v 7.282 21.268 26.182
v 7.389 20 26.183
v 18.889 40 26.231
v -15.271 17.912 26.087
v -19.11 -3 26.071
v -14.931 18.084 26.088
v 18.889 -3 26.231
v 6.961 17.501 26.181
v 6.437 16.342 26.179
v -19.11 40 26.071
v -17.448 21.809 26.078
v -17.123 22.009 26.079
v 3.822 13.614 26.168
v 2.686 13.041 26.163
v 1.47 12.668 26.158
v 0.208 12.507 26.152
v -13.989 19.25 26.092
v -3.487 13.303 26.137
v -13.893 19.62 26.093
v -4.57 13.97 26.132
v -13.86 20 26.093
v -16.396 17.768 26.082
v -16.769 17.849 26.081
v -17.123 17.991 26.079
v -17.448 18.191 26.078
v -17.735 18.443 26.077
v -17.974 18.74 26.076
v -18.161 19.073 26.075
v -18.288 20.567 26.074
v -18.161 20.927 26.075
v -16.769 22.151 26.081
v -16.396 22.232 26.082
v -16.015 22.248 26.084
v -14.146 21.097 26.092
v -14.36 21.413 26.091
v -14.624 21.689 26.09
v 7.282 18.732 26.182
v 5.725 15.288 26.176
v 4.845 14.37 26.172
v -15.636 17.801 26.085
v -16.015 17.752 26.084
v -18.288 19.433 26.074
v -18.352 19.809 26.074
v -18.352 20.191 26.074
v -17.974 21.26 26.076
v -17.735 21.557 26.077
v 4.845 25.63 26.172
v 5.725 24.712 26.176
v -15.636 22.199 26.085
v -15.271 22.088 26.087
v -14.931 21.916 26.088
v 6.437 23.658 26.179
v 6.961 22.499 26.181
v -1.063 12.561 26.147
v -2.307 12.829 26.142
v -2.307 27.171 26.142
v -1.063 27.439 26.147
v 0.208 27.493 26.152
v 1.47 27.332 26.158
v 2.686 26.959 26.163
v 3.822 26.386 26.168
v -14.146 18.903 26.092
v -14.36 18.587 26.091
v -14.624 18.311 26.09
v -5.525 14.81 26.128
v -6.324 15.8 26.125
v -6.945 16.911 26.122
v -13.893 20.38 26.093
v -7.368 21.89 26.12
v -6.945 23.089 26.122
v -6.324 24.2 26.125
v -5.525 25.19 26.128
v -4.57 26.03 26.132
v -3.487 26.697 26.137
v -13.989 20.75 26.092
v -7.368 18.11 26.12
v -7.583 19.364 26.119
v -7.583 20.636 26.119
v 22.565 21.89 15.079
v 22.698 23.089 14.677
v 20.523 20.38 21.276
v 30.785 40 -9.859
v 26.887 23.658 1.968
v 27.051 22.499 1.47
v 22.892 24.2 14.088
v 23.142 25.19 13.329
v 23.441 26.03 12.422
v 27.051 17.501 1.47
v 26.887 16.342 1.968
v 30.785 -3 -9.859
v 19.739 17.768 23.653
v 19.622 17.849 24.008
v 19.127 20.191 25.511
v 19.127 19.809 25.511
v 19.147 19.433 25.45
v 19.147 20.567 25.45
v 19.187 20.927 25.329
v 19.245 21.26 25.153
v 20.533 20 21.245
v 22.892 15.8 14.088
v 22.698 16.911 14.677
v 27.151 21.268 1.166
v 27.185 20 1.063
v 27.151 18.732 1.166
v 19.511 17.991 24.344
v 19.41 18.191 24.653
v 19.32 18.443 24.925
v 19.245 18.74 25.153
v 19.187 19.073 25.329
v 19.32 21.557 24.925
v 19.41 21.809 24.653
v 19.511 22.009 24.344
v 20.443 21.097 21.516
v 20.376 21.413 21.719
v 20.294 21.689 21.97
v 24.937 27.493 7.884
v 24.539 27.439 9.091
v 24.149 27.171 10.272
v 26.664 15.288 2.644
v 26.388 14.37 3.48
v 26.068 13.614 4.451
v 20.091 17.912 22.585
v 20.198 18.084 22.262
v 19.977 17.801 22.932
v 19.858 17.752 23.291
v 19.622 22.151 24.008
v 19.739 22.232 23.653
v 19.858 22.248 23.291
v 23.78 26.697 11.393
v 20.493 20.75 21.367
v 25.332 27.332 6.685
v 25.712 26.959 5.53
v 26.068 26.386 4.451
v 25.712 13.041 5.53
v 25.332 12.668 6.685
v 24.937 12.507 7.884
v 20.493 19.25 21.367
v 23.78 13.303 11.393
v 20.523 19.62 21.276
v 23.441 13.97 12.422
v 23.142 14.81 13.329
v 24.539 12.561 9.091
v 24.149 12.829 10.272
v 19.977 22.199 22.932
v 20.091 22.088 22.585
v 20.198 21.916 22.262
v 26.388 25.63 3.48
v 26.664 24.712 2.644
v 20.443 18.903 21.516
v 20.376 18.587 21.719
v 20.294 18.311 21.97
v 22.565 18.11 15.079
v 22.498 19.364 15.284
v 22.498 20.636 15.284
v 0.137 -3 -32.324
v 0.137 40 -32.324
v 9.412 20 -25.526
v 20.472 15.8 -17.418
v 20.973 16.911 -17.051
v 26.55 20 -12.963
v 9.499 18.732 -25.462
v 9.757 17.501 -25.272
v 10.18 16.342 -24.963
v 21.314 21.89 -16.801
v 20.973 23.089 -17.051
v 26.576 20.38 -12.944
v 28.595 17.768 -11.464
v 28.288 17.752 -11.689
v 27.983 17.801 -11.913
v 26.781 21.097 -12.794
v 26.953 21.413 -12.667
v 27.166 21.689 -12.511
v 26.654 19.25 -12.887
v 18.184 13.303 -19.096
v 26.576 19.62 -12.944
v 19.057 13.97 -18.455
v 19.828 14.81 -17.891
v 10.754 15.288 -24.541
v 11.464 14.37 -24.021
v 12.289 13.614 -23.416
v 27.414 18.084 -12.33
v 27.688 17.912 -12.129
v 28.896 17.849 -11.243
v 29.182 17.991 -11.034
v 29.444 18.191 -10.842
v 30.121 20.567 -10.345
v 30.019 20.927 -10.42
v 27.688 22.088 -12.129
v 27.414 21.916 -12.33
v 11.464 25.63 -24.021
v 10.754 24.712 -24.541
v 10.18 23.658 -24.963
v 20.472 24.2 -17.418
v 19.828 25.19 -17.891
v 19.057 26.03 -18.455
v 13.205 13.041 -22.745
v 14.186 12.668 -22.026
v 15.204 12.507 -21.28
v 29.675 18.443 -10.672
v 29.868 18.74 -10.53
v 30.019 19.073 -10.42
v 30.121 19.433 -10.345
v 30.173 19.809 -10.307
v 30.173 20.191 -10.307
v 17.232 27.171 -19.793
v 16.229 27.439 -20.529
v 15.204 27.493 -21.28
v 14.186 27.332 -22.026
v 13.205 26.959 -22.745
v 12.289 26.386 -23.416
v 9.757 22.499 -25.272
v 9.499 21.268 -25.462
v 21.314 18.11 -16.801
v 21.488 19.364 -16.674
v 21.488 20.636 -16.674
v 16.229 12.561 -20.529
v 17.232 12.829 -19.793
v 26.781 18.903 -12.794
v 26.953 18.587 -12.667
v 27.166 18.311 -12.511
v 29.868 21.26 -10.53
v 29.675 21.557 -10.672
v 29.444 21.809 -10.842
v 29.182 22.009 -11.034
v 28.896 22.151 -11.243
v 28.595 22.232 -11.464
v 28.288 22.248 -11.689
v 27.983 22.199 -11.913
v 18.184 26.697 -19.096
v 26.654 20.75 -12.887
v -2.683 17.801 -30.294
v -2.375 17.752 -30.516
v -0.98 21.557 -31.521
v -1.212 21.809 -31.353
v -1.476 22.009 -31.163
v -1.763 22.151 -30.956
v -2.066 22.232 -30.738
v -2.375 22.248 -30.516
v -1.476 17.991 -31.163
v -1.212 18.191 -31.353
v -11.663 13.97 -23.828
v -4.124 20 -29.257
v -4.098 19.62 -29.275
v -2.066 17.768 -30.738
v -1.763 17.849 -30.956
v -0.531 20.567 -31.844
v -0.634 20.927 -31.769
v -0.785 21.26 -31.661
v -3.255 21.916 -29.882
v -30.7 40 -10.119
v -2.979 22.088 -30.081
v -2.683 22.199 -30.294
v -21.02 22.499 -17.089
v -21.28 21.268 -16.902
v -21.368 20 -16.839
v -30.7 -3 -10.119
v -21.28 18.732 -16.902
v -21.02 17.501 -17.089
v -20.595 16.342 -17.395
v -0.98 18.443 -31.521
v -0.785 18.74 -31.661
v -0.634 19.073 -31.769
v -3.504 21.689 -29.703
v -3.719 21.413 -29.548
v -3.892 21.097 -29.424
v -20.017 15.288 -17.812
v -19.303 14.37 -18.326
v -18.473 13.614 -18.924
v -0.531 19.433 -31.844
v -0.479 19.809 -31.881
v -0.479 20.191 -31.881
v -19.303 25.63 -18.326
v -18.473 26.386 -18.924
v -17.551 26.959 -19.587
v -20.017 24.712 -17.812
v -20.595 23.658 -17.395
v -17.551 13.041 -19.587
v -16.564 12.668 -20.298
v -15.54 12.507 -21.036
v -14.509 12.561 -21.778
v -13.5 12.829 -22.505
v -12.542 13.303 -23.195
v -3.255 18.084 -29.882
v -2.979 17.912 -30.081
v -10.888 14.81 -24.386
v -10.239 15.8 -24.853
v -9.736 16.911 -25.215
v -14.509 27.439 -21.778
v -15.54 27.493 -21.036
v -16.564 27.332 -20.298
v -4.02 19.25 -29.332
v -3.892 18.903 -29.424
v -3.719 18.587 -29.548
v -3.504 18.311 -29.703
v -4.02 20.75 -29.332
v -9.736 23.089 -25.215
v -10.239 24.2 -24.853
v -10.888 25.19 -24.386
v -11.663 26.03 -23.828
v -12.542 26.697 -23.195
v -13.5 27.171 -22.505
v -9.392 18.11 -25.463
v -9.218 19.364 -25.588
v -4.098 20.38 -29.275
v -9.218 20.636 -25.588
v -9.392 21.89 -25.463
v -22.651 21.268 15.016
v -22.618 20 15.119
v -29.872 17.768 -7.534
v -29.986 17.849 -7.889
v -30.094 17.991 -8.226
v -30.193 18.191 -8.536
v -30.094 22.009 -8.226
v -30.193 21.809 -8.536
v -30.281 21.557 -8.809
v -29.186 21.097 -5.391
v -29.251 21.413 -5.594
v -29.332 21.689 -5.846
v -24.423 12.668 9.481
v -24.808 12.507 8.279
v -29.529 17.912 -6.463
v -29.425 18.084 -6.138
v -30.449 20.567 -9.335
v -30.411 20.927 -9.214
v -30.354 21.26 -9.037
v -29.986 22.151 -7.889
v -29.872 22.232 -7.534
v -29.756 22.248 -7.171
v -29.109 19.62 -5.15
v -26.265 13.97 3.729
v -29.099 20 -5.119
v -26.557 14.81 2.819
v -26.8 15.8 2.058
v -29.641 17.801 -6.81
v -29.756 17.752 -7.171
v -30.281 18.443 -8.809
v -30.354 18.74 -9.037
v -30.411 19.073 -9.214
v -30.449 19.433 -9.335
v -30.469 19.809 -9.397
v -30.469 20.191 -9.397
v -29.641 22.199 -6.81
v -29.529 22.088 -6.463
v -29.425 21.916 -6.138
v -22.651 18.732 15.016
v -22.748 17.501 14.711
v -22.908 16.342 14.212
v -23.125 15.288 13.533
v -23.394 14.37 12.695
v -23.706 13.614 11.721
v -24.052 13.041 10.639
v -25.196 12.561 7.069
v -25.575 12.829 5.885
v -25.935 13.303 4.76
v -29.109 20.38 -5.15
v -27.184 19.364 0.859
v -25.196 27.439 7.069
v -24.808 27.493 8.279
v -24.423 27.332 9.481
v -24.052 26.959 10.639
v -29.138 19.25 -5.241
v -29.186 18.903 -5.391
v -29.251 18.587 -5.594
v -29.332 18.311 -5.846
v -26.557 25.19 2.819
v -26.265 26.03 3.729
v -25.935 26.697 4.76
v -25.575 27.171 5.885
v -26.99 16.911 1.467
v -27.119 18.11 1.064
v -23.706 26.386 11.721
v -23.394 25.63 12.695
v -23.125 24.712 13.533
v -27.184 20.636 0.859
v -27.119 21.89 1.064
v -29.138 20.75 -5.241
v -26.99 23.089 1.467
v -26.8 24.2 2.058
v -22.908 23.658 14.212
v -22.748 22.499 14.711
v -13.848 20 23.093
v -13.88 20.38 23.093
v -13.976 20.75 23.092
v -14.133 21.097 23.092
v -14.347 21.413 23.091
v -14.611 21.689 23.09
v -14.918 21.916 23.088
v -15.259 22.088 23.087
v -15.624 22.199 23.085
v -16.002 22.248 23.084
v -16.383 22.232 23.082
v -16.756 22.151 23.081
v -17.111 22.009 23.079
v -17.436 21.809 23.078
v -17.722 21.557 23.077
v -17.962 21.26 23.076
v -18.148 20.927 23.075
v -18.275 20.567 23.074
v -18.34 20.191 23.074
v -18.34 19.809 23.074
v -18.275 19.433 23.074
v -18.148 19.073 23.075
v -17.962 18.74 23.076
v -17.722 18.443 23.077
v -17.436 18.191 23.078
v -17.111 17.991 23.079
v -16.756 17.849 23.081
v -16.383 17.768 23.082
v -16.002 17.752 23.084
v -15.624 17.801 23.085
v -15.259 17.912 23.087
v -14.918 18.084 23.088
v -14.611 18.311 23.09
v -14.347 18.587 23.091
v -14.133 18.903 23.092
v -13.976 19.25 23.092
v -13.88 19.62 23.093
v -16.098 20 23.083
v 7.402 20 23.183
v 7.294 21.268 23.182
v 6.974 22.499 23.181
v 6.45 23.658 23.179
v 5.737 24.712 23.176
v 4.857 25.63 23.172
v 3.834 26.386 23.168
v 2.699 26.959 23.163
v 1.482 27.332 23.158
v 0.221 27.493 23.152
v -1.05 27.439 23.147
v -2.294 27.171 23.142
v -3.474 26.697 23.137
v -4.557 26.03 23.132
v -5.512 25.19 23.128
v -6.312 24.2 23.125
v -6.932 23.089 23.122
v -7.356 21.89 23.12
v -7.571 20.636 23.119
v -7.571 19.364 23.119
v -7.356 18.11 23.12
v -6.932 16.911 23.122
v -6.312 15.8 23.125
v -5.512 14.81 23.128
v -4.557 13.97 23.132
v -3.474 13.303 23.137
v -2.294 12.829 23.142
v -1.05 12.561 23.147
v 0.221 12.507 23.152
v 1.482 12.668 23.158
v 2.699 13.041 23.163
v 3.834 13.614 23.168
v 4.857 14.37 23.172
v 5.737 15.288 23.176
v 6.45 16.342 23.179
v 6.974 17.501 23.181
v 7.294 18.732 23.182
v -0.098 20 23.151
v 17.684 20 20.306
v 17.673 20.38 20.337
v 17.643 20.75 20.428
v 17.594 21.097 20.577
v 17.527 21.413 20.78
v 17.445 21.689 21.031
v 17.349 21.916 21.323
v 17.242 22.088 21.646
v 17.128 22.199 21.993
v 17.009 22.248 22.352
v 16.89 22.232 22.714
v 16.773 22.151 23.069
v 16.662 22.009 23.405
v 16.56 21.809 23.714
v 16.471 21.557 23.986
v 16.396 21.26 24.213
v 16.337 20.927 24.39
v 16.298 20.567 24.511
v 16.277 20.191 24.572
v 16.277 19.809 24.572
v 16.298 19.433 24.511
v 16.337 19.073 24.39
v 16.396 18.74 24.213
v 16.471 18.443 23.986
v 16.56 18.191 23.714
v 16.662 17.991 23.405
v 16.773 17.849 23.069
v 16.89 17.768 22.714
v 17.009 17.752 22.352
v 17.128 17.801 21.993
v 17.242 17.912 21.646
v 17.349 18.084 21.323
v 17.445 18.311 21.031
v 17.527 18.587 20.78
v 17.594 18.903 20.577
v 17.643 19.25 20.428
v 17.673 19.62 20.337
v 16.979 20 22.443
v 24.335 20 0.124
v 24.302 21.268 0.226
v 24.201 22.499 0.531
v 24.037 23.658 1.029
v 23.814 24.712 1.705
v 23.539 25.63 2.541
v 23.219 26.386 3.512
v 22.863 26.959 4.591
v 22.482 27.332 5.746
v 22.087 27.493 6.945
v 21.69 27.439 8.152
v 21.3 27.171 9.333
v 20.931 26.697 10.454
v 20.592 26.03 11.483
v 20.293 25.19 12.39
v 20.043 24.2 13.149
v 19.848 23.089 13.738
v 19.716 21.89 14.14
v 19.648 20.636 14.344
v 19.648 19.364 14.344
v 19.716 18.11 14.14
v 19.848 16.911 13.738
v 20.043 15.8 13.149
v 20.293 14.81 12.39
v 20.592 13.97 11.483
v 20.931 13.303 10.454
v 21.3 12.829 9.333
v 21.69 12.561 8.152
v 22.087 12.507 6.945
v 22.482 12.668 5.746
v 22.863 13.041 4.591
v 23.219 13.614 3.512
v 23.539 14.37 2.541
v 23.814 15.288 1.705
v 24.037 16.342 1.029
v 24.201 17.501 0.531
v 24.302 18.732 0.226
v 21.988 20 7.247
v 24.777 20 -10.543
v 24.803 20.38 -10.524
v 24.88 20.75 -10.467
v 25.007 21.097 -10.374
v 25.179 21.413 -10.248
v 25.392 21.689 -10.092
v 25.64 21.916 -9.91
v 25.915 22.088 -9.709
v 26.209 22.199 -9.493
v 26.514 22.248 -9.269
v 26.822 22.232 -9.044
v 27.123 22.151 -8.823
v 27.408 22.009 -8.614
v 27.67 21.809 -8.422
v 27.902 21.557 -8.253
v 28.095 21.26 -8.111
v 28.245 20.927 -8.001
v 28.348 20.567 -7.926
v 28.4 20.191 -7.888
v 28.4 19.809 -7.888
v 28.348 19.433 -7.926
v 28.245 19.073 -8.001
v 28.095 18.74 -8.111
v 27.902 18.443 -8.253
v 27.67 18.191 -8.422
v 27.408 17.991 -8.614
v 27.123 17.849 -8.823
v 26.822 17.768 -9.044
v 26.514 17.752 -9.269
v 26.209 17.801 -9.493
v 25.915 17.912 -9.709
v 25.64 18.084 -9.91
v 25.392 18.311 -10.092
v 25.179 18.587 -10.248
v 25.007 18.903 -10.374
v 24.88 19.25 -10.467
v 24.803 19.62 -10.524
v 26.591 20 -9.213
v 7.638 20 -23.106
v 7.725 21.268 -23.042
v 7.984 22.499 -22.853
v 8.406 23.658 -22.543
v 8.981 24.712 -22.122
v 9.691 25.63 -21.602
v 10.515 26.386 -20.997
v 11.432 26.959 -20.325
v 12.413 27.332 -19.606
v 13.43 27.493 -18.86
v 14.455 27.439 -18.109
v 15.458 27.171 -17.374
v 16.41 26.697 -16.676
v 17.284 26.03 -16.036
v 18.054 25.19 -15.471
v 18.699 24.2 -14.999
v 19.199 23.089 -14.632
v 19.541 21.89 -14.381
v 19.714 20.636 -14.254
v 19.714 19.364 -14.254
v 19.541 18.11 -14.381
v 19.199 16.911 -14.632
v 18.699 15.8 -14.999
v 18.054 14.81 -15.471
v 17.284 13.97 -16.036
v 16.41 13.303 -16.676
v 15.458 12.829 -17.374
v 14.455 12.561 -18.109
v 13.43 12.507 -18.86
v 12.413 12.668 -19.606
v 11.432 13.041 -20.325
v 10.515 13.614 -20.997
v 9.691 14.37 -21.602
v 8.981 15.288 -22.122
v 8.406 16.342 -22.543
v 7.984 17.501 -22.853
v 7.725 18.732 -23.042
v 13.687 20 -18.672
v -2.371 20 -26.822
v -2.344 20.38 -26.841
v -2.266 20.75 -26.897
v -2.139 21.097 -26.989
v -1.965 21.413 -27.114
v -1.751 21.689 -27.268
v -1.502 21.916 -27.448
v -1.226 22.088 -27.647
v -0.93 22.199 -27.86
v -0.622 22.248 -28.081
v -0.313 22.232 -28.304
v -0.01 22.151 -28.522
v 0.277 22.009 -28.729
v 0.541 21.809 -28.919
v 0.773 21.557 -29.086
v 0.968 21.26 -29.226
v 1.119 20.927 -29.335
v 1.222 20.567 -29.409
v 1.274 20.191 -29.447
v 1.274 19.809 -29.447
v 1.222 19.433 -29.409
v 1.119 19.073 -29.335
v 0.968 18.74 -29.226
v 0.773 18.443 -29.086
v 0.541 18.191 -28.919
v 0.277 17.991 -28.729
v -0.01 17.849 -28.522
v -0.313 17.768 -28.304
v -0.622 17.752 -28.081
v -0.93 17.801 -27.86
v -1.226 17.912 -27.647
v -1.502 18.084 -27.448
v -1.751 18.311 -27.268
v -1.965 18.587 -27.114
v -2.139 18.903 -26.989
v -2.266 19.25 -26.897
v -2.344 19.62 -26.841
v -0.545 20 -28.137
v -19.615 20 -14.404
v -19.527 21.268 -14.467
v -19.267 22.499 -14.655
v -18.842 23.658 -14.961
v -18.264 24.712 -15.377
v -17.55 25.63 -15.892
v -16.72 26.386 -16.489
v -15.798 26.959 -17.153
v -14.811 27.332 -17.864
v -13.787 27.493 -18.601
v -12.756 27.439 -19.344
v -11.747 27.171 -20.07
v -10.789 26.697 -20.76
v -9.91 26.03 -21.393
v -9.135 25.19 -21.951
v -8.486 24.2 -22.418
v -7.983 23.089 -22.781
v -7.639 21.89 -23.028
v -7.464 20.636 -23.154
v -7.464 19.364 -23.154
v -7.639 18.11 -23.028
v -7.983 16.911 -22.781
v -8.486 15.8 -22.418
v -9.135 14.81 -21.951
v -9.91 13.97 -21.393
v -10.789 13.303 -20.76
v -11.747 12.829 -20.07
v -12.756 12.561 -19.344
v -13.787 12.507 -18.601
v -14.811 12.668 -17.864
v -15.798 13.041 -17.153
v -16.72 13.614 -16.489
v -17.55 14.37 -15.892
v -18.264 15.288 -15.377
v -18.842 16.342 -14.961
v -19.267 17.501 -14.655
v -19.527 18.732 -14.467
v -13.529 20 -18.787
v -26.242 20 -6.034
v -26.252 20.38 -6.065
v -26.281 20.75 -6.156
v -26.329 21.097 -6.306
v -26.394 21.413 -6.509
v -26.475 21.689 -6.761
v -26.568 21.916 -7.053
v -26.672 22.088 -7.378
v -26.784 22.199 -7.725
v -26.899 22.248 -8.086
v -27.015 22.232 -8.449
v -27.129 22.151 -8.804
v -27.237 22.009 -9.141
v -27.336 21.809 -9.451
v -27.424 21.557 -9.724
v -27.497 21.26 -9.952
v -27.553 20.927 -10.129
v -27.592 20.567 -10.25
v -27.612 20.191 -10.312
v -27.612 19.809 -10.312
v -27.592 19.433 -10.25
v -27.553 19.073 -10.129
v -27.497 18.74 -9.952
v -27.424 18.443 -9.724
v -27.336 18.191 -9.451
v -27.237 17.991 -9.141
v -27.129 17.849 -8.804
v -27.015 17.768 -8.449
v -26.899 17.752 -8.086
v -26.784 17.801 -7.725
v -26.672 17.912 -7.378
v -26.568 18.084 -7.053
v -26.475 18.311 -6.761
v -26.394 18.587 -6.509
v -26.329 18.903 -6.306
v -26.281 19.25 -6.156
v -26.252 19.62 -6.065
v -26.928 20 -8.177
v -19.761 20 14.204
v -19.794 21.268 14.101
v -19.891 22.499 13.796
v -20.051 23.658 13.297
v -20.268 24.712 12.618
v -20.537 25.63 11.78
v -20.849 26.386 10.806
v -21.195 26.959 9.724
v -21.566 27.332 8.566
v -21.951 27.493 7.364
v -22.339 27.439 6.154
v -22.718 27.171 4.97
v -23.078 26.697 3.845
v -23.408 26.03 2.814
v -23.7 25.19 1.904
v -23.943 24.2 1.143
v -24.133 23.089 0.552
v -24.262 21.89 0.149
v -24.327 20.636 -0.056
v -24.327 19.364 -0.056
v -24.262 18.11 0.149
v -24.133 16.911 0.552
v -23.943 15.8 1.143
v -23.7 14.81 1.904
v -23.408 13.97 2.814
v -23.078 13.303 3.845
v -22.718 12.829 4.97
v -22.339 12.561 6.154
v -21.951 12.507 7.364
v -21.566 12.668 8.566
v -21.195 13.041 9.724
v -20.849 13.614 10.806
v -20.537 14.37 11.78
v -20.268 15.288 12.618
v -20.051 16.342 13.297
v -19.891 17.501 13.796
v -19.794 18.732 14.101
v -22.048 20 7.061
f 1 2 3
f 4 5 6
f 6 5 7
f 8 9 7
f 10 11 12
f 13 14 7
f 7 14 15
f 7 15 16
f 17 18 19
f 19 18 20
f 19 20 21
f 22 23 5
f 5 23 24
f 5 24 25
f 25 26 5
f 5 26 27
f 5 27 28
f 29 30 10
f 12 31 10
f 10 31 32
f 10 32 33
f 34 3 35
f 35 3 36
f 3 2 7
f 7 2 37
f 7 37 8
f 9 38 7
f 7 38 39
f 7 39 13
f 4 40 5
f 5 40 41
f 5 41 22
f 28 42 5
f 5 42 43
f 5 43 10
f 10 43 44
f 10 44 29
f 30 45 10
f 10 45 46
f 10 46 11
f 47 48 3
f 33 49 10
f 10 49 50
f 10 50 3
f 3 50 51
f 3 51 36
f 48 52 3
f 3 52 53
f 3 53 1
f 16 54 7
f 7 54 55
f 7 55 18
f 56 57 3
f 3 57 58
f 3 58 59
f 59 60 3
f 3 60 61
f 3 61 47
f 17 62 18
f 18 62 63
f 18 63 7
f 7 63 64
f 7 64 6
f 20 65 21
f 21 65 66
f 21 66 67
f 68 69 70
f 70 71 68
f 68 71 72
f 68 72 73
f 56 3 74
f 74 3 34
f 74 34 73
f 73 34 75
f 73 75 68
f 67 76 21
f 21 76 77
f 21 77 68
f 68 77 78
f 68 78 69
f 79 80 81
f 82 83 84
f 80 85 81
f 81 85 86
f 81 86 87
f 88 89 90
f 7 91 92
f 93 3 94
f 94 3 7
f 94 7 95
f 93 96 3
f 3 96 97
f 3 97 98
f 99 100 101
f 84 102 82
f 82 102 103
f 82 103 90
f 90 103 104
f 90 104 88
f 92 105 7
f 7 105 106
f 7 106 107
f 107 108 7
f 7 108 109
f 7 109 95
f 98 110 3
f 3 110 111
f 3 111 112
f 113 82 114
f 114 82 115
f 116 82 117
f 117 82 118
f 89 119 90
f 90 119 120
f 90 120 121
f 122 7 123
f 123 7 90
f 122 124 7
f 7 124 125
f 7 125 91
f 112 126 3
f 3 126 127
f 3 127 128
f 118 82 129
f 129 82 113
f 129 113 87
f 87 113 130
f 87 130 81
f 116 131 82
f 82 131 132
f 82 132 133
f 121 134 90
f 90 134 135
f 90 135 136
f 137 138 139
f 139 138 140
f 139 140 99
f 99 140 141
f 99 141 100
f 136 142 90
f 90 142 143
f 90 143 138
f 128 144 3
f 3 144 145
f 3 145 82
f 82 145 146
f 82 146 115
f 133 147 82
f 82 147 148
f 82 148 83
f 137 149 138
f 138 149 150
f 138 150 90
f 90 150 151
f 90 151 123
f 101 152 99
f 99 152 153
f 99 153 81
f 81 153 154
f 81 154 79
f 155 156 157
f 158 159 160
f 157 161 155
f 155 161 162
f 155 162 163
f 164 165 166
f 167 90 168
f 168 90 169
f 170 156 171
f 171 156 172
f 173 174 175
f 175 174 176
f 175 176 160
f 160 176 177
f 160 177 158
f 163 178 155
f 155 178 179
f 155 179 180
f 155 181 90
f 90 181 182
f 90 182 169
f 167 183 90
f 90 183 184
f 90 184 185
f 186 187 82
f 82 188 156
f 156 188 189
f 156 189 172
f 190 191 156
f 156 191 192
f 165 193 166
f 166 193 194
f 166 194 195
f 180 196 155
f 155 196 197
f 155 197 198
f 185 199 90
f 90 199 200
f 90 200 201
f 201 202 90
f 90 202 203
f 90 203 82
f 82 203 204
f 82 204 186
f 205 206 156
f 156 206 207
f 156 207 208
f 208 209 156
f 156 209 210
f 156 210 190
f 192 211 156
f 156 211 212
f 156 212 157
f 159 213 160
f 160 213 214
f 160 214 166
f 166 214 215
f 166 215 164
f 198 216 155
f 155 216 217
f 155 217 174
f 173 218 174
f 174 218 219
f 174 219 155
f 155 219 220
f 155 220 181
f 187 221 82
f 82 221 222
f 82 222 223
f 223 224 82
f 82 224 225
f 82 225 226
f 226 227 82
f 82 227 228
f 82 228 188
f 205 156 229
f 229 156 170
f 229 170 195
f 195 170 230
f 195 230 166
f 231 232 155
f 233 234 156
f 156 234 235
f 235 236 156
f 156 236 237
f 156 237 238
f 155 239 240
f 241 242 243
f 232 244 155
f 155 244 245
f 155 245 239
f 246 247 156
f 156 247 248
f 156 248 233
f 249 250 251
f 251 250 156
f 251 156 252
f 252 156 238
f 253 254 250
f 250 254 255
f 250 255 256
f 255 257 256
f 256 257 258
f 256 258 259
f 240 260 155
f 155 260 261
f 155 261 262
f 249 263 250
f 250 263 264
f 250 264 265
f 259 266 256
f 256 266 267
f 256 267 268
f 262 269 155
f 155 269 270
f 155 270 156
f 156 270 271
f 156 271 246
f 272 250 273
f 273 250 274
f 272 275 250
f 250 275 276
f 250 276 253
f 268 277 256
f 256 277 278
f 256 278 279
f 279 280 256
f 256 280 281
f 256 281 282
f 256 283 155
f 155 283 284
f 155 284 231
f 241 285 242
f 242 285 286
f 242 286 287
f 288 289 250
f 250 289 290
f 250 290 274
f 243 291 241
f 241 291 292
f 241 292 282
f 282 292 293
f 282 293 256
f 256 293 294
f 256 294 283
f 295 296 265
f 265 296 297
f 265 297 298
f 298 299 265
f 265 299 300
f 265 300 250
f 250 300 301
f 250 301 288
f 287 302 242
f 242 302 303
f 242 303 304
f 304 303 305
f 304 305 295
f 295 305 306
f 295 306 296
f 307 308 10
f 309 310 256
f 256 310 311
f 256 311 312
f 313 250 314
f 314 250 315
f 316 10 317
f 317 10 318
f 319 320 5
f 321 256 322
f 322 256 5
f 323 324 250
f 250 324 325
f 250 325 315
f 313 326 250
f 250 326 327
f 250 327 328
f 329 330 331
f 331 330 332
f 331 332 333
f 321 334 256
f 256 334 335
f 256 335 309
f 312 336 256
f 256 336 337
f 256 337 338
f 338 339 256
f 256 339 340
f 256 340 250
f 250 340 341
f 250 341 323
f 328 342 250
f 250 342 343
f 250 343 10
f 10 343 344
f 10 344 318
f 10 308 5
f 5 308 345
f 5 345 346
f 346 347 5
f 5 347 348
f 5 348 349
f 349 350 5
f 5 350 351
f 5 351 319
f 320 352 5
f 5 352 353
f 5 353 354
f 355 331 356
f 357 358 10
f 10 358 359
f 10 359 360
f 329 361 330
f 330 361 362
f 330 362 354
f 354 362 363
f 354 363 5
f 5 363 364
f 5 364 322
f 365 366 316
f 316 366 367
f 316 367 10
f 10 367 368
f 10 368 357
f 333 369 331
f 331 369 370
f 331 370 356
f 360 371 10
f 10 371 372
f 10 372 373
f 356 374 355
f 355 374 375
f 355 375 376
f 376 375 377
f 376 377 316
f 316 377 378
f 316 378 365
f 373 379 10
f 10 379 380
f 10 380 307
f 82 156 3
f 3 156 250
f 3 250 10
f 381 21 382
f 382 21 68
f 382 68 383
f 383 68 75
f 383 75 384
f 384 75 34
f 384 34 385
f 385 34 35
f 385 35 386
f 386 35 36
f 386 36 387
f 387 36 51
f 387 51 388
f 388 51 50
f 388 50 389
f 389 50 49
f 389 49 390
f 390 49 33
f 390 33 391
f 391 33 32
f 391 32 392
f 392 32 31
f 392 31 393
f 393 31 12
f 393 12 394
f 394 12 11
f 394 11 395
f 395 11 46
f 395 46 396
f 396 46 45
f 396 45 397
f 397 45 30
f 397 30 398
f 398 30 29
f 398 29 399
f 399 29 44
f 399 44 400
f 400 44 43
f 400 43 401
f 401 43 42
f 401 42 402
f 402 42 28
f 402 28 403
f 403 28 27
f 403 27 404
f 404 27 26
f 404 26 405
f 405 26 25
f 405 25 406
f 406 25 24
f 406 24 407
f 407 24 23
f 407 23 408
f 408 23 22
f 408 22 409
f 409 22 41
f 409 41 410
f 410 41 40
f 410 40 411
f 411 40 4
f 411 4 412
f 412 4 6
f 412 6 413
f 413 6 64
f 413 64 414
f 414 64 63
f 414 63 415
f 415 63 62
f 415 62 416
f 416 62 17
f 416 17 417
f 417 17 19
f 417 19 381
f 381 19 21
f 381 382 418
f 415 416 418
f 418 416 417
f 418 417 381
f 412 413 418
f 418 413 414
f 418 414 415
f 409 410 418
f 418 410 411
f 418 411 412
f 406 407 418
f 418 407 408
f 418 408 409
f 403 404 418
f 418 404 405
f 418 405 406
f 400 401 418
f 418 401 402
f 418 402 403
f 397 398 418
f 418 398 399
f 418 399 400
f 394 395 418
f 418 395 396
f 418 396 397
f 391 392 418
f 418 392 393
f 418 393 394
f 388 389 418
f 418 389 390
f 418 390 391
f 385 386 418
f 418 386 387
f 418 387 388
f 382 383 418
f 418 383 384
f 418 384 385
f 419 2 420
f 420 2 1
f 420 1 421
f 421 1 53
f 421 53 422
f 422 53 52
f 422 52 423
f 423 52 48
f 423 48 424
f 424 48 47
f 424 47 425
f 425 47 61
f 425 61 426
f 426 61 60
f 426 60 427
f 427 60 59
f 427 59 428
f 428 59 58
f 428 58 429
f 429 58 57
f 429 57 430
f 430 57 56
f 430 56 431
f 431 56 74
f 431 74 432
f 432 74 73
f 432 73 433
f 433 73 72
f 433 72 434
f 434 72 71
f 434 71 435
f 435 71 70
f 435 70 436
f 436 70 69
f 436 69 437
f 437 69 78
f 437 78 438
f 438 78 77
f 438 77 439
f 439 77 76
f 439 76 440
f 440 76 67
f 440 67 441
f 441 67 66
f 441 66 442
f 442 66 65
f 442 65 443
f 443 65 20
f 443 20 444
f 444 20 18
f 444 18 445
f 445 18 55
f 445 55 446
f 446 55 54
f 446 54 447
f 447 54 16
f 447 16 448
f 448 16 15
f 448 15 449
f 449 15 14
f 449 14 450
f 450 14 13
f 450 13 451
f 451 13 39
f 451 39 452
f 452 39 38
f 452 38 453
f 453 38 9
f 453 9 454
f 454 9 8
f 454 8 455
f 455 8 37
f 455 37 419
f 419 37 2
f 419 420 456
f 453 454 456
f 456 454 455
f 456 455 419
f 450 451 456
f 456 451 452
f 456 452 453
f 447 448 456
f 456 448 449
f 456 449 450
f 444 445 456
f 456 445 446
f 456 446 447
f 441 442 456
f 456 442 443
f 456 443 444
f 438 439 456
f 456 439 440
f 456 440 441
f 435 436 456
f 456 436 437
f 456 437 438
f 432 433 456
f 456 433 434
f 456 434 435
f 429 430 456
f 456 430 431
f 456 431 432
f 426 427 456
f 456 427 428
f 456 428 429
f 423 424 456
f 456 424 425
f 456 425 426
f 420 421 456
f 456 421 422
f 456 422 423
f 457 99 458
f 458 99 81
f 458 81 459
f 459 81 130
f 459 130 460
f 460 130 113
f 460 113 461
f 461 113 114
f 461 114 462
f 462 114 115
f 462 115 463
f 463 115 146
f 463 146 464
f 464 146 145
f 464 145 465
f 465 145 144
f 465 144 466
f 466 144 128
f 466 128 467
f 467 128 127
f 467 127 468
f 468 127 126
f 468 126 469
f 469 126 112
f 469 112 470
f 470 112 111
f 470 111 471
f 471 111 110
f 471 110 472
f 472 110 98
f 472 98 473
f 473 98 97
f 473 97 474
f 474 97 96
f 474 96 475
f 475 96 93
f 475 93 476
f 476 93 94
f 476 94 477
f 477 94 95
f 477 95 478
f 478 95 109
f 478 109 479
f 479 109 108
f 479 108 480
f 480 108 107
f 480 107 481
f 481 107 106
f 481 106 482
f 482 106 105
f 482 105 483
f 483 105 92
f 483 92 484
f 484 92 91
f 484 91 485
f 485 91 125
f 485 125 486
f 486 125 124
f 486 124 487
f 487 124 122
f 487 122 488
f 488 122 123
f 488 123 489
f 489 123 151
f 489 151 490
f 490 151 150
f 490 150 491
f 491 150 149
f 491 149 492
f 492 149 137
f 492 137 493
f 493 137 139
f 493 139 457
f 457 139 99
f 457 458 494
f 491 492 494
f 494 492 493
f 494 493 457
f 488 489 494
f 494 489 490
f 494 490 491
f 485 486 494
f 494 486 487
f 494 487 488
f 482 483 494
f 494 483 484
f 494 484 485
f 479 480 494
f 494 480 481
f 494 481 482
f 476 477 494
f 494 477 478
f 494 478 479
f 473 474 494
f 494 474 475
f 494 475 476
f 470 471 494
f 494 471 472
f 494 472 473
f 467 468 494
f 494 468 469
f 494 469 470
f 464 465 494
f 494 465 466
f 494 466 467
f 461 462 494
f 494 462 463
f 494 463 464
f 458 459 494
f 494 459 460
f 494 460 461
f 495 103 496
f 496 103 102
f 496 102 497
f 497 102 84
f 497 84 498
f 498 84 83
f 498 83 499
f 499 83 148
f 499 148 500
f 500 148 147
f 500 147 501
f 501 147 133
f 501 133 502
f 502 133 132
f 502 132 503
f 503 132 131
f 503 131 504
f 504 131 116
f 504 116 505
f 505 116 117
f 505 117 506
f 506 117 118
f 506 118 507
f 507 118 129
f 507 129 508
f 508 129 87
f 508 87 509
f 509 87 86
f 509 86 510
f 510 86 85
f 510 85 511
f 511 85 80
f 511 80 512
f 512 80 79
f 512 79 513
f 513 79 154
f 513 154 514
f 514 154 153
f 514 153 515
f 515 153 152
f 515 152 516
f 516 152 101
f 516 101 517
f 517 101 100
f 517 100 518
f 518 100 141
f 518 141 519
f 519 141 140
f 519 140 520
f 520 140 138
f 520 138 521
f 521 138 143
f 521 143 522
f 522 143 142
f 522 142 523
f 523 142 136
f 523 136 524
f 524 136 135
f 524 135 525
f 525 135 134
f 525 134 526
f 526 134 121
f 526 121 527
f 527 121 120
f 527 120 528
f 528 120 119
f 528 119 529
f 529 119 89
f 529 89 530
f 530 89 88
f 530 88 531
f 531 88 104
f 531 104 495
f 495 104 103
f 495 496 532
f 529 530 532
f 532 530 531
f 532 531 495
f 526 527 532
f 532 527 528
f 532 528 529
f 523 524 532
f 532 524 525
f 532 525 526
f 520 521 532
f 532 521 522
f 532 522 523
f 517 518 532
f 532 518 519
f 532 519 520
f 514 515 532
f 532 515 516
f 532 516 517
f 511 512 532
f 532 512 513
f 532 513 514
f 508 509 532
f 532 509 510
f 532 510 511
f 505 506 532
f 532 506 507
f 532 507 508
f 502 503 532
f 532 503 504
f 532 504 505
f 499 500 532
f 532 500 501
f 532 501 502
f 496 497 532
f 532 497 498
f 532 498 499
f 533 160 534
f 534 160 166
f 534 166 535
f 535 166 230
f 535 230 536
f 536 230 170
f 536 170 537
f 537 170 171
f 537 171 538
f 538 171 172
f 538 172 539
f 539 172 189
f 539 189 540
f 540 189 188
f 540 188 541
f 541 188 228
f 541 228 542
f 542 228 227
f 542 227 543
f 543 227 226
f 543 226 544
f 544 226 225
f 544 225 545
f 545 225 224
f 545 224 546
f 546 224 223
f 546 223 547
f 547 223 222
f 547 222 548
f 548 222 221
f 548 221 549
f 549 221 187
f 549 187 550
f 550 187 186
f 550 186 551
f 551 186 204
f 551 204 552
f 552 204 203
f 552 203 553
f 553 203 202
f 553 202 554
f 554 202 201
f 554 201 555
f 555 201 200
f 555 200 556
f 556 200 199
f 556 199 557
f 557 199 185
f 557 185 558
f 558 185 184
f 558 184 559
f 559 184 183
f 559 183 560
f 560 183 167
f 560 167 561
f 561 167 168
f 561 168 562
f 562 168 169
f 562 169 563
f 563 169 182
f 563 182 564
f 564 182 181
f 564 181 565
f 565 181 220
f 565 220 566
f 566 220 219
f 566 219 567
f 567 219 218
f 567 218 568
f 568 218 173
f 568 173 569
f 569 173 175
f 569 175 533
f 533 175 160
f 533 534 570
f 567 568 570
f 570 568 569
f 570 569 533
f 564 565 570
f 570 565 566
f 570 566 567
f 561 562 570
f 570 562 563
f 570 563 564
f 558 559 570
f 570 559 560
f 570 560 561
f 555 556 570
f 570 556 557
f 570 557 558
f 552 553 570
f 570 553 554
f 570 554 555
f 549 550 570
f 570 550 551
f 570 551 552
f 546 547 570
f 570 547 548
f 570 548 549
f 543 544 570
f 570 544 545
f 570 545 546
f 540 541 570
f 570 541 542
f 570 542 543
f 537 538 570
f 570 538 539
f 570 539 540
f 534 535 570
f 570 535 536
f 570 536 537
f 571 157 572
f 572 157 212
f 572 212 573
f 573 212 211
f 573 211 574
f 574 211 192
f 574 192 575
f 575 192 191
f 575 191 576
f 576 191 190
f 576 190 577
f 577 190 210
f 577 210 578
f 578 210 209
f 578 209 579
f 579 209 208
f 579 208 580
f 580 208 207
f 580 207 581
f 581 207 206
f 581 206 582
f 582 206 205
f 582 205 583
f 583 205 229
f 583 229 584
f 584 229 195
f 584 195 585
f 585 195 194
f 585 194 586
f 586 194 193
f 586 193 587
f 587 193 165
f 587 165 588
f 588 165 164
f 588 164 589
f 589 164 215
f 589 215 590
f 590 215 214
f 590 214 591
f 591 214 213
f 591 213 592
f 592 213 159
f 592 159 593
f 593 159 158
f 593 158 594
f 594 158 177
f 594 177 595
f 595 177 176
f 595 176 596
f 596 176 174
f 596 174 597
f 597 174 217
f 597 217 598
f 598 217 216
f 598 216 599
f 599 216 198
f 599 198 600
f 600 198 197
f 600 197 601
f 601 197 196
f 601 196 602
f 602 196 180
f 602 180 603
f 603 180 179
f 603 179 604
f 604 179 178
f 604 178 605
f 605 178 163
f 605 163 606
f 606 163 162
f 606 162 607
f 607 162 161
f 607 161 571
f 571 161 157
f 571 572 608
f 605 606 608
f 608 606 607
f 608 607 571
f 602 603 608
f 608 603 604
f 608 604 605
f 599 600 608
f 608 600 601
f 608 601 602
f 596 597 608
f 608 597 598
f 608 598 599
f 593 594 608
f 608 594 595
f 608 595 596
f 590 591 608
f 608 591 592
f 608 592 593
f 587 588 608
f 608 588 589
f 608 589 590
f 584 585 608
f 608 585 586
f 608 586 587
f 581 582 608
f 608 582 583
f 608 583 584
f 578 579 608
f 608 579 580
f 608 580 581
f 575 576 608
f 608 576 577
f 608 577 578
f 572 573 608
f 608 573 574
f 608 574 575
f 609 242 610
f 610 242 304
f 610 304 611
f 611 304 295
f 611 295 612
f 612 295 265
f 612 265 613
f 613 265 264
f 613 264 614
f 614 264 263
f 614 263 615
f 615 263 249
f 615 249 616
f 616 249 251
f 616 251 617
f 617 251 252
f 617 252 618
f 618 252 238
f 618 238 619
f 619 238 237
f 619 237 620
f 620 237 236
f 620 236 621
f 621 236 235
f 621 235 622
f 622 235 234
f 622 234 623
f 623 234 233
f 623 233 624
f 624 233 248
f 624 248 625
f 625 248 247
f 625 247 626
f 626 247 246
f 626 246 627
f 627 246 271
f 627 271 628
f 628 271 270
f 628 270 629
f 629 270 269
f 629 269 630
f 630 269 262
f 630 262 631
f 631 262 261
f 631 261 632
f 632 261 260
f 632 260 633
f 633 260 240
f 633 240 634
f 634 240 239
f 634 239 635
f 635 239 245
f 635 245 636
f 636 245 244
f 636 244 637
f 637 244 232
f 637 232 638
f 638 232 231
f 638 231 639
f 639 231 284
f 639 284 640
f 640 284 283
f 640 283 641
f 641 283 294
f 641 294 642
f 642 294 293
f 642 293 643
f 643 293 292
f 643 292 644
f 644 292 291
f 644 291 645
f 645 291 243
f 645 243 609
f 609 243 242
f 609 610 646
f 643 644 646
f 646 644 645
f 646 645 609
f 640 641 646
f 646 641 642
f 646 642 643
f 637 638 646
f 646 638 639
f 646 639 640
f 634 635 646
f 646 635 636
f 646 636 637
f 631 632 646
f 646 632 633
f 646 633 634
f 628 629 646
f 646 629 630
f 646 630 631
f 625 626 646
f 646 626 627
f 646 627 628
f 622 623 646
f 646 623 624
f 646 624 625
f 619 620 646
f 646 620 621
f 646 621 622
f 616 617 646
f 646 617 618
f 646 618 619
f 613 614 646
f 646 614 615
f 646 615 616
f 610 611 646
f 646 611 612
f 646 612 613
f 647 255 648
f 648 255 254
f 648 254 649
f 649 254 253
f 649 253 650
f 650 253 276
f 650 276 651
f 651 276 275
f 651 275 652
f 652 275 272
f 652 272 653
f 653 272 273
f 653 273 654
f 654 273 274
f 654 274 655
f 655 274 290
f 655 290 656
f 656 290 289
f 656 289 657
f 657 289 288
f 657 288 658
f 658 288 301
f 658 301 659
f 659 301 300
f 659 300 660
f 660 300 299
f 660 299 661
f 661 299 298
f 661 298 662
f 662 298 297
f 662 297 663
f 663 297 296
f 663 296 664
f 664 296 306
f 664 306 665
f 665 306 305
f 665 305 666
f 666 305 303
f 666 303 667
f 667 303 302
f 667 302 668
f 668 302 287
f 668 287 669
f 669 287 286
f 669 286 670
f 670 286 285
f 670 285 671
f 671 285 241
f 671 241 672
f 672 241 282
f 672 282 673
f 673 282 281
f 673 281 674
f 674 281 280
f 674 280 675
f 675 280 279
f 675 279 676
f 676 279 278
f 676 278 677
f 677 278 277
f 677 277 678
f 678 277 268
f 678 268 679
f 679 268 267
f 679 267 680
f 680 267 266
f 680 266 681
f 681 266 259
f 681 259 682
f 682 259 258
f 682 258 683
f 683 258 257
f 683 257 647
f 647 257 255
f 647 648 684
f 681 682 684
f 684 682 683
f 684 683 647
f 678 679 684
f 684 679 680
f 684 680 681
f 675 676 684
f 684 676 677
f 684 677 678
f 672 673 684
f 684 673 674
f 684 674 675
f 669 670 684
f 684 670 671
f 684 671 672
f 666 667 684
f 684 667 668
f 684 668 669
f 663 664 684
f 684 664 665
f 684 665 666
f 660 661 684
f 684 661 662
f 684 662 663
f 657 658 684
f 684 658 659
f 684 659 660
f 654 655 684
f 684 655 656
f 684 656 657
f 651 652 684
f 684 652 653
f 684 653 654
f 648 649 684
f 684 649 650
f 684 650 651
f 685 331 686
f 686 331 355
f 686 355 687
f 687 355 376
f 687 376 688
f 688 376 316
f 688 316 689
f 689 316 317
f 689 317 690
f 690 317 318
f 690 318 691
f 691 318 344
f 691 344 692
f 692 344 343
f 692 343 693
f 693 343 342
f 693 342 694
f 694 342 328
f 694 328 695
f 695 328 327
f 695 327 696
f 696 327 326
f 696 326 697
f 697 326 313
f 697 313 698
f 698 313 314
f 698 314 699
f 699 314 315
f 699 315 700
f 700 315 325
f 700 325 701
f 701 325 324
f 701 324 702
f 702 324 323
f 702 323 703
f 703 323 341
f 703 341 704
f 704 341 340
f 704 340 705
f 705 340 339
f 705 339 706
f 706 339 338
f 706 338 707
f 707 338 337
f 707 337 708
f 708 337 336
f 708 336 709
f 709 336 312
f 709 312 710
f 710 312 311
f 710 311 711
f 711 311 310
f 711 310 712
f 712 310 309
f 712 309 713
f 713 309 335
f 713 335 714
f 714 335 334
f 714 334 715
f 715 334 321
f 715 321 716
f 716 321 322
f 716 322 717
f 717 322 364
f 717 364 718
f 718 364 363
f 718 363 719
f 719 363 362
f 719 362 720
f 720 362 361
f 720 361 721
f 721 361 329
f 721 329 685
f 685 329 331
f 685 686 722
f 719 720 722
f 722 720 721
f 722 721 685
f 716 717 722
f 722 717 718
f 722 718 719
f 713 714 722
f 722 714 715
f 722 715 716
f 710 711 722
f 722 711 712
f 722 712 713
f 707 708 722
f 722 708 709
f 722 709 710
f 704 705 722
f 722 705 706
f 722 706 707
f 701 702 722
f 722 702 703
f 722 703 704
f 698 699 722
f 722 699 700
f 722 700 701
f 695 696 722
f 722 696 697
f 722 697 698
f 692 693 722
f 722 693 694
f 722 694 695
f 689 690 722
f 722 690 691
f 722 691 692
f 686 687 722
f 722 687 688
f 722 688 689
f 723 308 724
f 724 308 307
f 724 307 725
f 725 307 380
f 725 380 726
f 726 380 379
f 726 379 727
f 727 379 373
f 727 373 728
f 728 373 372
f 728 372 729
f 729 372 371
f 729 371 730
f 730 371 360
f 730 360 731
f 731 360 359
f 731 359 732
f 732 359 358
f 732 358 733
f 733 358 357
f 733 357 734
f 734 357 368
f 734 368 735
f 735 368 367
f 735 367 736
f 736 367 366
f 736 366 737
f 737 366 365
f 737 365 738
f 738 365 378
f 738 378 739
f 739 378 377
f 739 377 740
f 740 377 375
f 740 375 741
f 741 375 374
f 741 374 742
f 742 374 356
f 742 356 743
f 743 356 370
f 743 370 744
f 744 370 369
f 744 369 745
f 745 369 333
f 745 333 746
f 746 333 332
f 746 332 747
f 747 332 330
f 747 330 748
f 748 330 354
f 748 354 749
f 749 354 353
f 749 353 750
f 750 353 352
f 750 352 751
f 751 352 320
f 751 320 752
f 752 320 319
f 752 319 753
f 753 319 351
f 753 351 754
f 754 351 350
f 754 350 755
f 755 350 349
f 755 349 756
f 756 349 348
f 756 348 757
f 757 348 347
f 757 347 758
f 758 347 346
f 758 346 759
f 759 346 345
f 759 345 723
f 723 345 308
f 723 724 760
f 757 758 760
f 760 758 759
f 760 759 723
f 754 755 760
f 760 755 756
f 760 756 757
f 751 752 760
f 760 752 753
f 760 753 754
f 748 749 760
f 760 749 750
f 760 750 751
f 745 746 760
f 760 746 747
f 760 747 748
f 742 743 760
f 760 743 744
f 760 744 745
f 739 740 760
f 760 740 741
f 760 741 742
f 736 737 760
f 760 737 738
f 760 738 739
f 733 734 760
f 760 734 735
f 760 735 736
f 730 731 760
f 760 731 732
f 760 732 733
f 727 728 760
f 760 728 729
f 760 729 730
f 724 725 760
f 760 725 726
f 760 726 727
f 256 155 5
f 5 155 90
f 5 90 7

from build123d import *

# Parameters (mm, degrees)
BOSS_EXTRUDE1_DEPTH = 40
SKETCH3_R           = 7.5
SKETCH3_R_2         = 2.25
CUT_EXTRUDE1_DEPTH  = 3
SKETCH4_R           = 7.5
SKETCH4_R_2         = 2.25
CUT_EXTRUDE2_DEPTH  = 3
SKETCH5_R           = 7.5
SKETCH5_R_2         = 2.25
CUT_EXTRUDE3_DEPTH  = 3
SKETCH6_R           = 7.5
SKETCH6_R_2         = 2.25
CUT_EXTRUDE4_DEPTH  = 3
SKETCH7_R           = 7.5
SKETCH7_R_2         = 2.25
CUT_EXTRUDE5_DEPTH  = 3
BOSS_EXTRUDE2_DEPTH = 3


with BuildPart() as part:
    # Sketch2 → Boss-Extrude1 (new body)
    with BuildSketch(Plane(origin=(0, 0, 0), x_dir=(1, 0, 0), z_dir=(0, 1, 0))):
        Polygon((18.889370654, -26.231276984), (30.784563452, 9.858948677), (0.136535888, 32.32444236), (-30.700179633, 10.118655369), (-19.110290361, -26.070769422), align=None)
    extrude(amount=BOSS_EXTRUDE1_DEPTH)

    # Sketch3 → Cut-Extrude1 (cut)
    with BuildSketch(Plane(origin=(-0.110459853, 0, 26.151023203), x_dir=(0.999991079365483, 0, 0.004223883220016987), z_dir=(-0.004223883220016987, 0, 0.9999910793654831))):
        with Locations((0, 20)):
            Circle(SKETCH3_R)
        with Locations((-16, 20)):
            Circle(SKETCH3_R_2)
    extrude(amount=-CUT_EXTRUDE1_DEPTH, mode=Mode.SUBTRACT)

    # Sketch4 → Cut-Extrude2 (cut)
    with BuildSketch(Plane(origin=(24.836967053, 0, 8.186164153), x_dir=(0.3130313894077477, 0, -0.9497427805703264), z_dir=(0.9497427805703265, 0, 0.3130313894077478))):
        with Locations((0, 20)):
            Circle(SKETCH4_R)
        with Locations((-16, 20)):
            Circle(SKETCH4_R_2)
    extrude(amount=-CUT_EXTRUDE2_DEPTH, mode=Mode.SUBTRACT)

    # Sketch5 → Cut-Extrude3 (cut)
    with BuildSketch(Plane(origin=(15.46054967, 0, -21.091695519), x_dir=(-0.8065270411658909, 0, -0.591197202182312), z_dir=(0.5911972021823119, 0, -0.8065270411658908))):
        with Locations((0, 20)):
            Circle(SKETCH5_R)
        with Locations((-16, 20)):
            Circle(SKETCH5_R_2)
    extrude(amount=-CUT_EXTRUDE3_DEPTH, mode=Mode.SUBTRACT)

    # Sketch6 → Cut-Extrude4 (cut)
    with BuildSketch(Plane(origin=(-15.281821873, 0, -21.221548864), x_dir=(-0.8114925136941543, 0, 0.584362815567814), z_dir=(-0.5843628155678139, 0, -0.8114925136941542))):
        with Locations((0, 20)):
            Circle(SKETCH6_R)
        with Locations((-16, 20)):
            Circle(SKETCH6_R_2)
    extrude(amount=-CUT_EXTRUDE4_DEPTH, mode=Mode.SUBTRACT)

    # Sketch7 → Cut-Extrude5 (cut)
    with BuildSketch(Plane(origin=(-24.905234997, 0, 7.976057027), x_dir=(0.304997086086814, 0, 0.9523532839648071), z_dir=(-0.9523532839648071, 0, 0.304997086086814))):
        with Locations((0, 20)):
            Circle(SKETCH7_R)
        with Locations((-16, 20)):
            Circle(SKETCH7_R_2)
    extrude(amount=-CUT_EXTRUDE5_DEPTH, mode=Mode.SUBTRACT)

    # Sketch8 → Boss-Extrude2 (add)
    with BuildSketch(Plane.XZ):
        Polygon((30.784563452, -9.858948677), (18.889370654, 26.231276984), (-19.110290361, 26.070769422), (-30.700179633, -10.118655369), (0.136535888, -32.32444236), align=None)
    extrude(amount=BOSS_EXTRUDE2_DEPTH)


solid = part.part
